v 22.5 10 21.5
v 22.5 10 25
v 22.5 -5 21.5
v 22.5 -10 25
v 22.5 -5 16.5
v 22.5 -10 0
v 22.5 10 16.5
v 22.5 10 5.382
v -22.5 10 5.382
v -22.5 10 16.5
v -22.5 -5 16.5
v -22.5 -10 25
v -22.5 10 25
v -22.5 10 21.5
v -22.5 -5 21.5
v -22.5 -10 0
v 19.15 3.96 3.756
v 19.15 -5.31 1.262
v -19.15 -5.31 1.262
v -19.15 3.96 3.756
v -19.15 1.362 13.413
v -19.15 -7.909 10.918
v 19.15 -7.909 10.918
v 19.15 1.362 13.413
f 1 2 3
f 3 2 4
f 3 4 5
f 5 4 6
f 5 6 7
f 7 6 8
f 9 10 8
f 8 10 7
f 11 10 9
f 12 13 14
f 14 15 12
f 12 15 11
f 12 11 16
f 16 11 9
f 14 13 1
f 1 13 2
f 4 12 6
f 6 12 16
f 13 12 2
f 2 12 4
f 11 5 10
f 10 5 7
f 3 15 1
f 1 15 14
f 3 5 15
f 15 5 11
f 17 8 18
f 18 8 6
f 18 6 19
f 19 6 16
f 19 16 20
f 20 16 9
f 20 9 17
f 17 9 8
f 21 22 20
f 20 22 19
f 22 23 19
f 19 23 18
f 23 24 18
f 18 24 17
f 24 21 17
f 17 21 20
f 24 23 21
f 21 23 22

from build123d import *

# Parameters (mm, degrees)
SKETCH2_W           = 45
SKETCH2_H           = 20
BOSS_EXTRUDE1_DEPTH = 25
SKETCH5_W           = 45
SKETCH5_H           = 5
CUT_EXTRUDE1_DEPTH  = 15
CUT_EXTRUDE2_DEPTH  = 45
SKETCH8_W           = 38.3
SKETCH8_H           = 9.6
CUT_EXTRUDE3_DEPTH  = 10


with BuildPart() as part:
    # Sketch2 → Boss-Extrude1 (new body)
    with BuildSketch(Plane.XY):
        Rectangle(SKETCH2_W, SKETCH2_H)
    extrude(amount=BOSS_EXTRUDE1_DEPTH)

    # Sketch5 → Cut-Extrude1 (cut)
    with BuildSketch(Plane(origin=(0, 10, 0), x_dir=(1, 0, 0), z_dir=(0, 1, 0))):
        with Locations((0, -19)):
            Rectangle(SKETCH5_W, SKETCH5_H)
    extrude(amount=-CUT_EXTRUDE1_DEPTH, mode=Mode.SUBTRACT)

    # Sketch7 → Cut-Extrude2 (cut)
    with BuildSketch(Plane(origin=(22.5, 0, 0), x_dir=(0, 0, -1), z_dir=(1, 0, 0))):
        Polygon((0, -10), (0, 10), (-5.381576505, 10), align=None)
    extrude(amount=-CUT_EXTRUDE2_DEPTH, mode=Mode.SUBTRACT)

    # Sketch8 → Cut-Extrude3 (cut)
    with BuildSketch(Plane(origin=(0, -0.675150911, 2.509119438), x_dir=(-1, 0, 0), z_dir=(0, 0.25983666232132585, -0.9656525818914965))):
        Rectangle(SKETCH8_W, SKETCH8_H)
    extrude(amount=-CUT_EXTRUDE3_DEPTH, mode=Mode.SUBTRACT)


solid = part.part
